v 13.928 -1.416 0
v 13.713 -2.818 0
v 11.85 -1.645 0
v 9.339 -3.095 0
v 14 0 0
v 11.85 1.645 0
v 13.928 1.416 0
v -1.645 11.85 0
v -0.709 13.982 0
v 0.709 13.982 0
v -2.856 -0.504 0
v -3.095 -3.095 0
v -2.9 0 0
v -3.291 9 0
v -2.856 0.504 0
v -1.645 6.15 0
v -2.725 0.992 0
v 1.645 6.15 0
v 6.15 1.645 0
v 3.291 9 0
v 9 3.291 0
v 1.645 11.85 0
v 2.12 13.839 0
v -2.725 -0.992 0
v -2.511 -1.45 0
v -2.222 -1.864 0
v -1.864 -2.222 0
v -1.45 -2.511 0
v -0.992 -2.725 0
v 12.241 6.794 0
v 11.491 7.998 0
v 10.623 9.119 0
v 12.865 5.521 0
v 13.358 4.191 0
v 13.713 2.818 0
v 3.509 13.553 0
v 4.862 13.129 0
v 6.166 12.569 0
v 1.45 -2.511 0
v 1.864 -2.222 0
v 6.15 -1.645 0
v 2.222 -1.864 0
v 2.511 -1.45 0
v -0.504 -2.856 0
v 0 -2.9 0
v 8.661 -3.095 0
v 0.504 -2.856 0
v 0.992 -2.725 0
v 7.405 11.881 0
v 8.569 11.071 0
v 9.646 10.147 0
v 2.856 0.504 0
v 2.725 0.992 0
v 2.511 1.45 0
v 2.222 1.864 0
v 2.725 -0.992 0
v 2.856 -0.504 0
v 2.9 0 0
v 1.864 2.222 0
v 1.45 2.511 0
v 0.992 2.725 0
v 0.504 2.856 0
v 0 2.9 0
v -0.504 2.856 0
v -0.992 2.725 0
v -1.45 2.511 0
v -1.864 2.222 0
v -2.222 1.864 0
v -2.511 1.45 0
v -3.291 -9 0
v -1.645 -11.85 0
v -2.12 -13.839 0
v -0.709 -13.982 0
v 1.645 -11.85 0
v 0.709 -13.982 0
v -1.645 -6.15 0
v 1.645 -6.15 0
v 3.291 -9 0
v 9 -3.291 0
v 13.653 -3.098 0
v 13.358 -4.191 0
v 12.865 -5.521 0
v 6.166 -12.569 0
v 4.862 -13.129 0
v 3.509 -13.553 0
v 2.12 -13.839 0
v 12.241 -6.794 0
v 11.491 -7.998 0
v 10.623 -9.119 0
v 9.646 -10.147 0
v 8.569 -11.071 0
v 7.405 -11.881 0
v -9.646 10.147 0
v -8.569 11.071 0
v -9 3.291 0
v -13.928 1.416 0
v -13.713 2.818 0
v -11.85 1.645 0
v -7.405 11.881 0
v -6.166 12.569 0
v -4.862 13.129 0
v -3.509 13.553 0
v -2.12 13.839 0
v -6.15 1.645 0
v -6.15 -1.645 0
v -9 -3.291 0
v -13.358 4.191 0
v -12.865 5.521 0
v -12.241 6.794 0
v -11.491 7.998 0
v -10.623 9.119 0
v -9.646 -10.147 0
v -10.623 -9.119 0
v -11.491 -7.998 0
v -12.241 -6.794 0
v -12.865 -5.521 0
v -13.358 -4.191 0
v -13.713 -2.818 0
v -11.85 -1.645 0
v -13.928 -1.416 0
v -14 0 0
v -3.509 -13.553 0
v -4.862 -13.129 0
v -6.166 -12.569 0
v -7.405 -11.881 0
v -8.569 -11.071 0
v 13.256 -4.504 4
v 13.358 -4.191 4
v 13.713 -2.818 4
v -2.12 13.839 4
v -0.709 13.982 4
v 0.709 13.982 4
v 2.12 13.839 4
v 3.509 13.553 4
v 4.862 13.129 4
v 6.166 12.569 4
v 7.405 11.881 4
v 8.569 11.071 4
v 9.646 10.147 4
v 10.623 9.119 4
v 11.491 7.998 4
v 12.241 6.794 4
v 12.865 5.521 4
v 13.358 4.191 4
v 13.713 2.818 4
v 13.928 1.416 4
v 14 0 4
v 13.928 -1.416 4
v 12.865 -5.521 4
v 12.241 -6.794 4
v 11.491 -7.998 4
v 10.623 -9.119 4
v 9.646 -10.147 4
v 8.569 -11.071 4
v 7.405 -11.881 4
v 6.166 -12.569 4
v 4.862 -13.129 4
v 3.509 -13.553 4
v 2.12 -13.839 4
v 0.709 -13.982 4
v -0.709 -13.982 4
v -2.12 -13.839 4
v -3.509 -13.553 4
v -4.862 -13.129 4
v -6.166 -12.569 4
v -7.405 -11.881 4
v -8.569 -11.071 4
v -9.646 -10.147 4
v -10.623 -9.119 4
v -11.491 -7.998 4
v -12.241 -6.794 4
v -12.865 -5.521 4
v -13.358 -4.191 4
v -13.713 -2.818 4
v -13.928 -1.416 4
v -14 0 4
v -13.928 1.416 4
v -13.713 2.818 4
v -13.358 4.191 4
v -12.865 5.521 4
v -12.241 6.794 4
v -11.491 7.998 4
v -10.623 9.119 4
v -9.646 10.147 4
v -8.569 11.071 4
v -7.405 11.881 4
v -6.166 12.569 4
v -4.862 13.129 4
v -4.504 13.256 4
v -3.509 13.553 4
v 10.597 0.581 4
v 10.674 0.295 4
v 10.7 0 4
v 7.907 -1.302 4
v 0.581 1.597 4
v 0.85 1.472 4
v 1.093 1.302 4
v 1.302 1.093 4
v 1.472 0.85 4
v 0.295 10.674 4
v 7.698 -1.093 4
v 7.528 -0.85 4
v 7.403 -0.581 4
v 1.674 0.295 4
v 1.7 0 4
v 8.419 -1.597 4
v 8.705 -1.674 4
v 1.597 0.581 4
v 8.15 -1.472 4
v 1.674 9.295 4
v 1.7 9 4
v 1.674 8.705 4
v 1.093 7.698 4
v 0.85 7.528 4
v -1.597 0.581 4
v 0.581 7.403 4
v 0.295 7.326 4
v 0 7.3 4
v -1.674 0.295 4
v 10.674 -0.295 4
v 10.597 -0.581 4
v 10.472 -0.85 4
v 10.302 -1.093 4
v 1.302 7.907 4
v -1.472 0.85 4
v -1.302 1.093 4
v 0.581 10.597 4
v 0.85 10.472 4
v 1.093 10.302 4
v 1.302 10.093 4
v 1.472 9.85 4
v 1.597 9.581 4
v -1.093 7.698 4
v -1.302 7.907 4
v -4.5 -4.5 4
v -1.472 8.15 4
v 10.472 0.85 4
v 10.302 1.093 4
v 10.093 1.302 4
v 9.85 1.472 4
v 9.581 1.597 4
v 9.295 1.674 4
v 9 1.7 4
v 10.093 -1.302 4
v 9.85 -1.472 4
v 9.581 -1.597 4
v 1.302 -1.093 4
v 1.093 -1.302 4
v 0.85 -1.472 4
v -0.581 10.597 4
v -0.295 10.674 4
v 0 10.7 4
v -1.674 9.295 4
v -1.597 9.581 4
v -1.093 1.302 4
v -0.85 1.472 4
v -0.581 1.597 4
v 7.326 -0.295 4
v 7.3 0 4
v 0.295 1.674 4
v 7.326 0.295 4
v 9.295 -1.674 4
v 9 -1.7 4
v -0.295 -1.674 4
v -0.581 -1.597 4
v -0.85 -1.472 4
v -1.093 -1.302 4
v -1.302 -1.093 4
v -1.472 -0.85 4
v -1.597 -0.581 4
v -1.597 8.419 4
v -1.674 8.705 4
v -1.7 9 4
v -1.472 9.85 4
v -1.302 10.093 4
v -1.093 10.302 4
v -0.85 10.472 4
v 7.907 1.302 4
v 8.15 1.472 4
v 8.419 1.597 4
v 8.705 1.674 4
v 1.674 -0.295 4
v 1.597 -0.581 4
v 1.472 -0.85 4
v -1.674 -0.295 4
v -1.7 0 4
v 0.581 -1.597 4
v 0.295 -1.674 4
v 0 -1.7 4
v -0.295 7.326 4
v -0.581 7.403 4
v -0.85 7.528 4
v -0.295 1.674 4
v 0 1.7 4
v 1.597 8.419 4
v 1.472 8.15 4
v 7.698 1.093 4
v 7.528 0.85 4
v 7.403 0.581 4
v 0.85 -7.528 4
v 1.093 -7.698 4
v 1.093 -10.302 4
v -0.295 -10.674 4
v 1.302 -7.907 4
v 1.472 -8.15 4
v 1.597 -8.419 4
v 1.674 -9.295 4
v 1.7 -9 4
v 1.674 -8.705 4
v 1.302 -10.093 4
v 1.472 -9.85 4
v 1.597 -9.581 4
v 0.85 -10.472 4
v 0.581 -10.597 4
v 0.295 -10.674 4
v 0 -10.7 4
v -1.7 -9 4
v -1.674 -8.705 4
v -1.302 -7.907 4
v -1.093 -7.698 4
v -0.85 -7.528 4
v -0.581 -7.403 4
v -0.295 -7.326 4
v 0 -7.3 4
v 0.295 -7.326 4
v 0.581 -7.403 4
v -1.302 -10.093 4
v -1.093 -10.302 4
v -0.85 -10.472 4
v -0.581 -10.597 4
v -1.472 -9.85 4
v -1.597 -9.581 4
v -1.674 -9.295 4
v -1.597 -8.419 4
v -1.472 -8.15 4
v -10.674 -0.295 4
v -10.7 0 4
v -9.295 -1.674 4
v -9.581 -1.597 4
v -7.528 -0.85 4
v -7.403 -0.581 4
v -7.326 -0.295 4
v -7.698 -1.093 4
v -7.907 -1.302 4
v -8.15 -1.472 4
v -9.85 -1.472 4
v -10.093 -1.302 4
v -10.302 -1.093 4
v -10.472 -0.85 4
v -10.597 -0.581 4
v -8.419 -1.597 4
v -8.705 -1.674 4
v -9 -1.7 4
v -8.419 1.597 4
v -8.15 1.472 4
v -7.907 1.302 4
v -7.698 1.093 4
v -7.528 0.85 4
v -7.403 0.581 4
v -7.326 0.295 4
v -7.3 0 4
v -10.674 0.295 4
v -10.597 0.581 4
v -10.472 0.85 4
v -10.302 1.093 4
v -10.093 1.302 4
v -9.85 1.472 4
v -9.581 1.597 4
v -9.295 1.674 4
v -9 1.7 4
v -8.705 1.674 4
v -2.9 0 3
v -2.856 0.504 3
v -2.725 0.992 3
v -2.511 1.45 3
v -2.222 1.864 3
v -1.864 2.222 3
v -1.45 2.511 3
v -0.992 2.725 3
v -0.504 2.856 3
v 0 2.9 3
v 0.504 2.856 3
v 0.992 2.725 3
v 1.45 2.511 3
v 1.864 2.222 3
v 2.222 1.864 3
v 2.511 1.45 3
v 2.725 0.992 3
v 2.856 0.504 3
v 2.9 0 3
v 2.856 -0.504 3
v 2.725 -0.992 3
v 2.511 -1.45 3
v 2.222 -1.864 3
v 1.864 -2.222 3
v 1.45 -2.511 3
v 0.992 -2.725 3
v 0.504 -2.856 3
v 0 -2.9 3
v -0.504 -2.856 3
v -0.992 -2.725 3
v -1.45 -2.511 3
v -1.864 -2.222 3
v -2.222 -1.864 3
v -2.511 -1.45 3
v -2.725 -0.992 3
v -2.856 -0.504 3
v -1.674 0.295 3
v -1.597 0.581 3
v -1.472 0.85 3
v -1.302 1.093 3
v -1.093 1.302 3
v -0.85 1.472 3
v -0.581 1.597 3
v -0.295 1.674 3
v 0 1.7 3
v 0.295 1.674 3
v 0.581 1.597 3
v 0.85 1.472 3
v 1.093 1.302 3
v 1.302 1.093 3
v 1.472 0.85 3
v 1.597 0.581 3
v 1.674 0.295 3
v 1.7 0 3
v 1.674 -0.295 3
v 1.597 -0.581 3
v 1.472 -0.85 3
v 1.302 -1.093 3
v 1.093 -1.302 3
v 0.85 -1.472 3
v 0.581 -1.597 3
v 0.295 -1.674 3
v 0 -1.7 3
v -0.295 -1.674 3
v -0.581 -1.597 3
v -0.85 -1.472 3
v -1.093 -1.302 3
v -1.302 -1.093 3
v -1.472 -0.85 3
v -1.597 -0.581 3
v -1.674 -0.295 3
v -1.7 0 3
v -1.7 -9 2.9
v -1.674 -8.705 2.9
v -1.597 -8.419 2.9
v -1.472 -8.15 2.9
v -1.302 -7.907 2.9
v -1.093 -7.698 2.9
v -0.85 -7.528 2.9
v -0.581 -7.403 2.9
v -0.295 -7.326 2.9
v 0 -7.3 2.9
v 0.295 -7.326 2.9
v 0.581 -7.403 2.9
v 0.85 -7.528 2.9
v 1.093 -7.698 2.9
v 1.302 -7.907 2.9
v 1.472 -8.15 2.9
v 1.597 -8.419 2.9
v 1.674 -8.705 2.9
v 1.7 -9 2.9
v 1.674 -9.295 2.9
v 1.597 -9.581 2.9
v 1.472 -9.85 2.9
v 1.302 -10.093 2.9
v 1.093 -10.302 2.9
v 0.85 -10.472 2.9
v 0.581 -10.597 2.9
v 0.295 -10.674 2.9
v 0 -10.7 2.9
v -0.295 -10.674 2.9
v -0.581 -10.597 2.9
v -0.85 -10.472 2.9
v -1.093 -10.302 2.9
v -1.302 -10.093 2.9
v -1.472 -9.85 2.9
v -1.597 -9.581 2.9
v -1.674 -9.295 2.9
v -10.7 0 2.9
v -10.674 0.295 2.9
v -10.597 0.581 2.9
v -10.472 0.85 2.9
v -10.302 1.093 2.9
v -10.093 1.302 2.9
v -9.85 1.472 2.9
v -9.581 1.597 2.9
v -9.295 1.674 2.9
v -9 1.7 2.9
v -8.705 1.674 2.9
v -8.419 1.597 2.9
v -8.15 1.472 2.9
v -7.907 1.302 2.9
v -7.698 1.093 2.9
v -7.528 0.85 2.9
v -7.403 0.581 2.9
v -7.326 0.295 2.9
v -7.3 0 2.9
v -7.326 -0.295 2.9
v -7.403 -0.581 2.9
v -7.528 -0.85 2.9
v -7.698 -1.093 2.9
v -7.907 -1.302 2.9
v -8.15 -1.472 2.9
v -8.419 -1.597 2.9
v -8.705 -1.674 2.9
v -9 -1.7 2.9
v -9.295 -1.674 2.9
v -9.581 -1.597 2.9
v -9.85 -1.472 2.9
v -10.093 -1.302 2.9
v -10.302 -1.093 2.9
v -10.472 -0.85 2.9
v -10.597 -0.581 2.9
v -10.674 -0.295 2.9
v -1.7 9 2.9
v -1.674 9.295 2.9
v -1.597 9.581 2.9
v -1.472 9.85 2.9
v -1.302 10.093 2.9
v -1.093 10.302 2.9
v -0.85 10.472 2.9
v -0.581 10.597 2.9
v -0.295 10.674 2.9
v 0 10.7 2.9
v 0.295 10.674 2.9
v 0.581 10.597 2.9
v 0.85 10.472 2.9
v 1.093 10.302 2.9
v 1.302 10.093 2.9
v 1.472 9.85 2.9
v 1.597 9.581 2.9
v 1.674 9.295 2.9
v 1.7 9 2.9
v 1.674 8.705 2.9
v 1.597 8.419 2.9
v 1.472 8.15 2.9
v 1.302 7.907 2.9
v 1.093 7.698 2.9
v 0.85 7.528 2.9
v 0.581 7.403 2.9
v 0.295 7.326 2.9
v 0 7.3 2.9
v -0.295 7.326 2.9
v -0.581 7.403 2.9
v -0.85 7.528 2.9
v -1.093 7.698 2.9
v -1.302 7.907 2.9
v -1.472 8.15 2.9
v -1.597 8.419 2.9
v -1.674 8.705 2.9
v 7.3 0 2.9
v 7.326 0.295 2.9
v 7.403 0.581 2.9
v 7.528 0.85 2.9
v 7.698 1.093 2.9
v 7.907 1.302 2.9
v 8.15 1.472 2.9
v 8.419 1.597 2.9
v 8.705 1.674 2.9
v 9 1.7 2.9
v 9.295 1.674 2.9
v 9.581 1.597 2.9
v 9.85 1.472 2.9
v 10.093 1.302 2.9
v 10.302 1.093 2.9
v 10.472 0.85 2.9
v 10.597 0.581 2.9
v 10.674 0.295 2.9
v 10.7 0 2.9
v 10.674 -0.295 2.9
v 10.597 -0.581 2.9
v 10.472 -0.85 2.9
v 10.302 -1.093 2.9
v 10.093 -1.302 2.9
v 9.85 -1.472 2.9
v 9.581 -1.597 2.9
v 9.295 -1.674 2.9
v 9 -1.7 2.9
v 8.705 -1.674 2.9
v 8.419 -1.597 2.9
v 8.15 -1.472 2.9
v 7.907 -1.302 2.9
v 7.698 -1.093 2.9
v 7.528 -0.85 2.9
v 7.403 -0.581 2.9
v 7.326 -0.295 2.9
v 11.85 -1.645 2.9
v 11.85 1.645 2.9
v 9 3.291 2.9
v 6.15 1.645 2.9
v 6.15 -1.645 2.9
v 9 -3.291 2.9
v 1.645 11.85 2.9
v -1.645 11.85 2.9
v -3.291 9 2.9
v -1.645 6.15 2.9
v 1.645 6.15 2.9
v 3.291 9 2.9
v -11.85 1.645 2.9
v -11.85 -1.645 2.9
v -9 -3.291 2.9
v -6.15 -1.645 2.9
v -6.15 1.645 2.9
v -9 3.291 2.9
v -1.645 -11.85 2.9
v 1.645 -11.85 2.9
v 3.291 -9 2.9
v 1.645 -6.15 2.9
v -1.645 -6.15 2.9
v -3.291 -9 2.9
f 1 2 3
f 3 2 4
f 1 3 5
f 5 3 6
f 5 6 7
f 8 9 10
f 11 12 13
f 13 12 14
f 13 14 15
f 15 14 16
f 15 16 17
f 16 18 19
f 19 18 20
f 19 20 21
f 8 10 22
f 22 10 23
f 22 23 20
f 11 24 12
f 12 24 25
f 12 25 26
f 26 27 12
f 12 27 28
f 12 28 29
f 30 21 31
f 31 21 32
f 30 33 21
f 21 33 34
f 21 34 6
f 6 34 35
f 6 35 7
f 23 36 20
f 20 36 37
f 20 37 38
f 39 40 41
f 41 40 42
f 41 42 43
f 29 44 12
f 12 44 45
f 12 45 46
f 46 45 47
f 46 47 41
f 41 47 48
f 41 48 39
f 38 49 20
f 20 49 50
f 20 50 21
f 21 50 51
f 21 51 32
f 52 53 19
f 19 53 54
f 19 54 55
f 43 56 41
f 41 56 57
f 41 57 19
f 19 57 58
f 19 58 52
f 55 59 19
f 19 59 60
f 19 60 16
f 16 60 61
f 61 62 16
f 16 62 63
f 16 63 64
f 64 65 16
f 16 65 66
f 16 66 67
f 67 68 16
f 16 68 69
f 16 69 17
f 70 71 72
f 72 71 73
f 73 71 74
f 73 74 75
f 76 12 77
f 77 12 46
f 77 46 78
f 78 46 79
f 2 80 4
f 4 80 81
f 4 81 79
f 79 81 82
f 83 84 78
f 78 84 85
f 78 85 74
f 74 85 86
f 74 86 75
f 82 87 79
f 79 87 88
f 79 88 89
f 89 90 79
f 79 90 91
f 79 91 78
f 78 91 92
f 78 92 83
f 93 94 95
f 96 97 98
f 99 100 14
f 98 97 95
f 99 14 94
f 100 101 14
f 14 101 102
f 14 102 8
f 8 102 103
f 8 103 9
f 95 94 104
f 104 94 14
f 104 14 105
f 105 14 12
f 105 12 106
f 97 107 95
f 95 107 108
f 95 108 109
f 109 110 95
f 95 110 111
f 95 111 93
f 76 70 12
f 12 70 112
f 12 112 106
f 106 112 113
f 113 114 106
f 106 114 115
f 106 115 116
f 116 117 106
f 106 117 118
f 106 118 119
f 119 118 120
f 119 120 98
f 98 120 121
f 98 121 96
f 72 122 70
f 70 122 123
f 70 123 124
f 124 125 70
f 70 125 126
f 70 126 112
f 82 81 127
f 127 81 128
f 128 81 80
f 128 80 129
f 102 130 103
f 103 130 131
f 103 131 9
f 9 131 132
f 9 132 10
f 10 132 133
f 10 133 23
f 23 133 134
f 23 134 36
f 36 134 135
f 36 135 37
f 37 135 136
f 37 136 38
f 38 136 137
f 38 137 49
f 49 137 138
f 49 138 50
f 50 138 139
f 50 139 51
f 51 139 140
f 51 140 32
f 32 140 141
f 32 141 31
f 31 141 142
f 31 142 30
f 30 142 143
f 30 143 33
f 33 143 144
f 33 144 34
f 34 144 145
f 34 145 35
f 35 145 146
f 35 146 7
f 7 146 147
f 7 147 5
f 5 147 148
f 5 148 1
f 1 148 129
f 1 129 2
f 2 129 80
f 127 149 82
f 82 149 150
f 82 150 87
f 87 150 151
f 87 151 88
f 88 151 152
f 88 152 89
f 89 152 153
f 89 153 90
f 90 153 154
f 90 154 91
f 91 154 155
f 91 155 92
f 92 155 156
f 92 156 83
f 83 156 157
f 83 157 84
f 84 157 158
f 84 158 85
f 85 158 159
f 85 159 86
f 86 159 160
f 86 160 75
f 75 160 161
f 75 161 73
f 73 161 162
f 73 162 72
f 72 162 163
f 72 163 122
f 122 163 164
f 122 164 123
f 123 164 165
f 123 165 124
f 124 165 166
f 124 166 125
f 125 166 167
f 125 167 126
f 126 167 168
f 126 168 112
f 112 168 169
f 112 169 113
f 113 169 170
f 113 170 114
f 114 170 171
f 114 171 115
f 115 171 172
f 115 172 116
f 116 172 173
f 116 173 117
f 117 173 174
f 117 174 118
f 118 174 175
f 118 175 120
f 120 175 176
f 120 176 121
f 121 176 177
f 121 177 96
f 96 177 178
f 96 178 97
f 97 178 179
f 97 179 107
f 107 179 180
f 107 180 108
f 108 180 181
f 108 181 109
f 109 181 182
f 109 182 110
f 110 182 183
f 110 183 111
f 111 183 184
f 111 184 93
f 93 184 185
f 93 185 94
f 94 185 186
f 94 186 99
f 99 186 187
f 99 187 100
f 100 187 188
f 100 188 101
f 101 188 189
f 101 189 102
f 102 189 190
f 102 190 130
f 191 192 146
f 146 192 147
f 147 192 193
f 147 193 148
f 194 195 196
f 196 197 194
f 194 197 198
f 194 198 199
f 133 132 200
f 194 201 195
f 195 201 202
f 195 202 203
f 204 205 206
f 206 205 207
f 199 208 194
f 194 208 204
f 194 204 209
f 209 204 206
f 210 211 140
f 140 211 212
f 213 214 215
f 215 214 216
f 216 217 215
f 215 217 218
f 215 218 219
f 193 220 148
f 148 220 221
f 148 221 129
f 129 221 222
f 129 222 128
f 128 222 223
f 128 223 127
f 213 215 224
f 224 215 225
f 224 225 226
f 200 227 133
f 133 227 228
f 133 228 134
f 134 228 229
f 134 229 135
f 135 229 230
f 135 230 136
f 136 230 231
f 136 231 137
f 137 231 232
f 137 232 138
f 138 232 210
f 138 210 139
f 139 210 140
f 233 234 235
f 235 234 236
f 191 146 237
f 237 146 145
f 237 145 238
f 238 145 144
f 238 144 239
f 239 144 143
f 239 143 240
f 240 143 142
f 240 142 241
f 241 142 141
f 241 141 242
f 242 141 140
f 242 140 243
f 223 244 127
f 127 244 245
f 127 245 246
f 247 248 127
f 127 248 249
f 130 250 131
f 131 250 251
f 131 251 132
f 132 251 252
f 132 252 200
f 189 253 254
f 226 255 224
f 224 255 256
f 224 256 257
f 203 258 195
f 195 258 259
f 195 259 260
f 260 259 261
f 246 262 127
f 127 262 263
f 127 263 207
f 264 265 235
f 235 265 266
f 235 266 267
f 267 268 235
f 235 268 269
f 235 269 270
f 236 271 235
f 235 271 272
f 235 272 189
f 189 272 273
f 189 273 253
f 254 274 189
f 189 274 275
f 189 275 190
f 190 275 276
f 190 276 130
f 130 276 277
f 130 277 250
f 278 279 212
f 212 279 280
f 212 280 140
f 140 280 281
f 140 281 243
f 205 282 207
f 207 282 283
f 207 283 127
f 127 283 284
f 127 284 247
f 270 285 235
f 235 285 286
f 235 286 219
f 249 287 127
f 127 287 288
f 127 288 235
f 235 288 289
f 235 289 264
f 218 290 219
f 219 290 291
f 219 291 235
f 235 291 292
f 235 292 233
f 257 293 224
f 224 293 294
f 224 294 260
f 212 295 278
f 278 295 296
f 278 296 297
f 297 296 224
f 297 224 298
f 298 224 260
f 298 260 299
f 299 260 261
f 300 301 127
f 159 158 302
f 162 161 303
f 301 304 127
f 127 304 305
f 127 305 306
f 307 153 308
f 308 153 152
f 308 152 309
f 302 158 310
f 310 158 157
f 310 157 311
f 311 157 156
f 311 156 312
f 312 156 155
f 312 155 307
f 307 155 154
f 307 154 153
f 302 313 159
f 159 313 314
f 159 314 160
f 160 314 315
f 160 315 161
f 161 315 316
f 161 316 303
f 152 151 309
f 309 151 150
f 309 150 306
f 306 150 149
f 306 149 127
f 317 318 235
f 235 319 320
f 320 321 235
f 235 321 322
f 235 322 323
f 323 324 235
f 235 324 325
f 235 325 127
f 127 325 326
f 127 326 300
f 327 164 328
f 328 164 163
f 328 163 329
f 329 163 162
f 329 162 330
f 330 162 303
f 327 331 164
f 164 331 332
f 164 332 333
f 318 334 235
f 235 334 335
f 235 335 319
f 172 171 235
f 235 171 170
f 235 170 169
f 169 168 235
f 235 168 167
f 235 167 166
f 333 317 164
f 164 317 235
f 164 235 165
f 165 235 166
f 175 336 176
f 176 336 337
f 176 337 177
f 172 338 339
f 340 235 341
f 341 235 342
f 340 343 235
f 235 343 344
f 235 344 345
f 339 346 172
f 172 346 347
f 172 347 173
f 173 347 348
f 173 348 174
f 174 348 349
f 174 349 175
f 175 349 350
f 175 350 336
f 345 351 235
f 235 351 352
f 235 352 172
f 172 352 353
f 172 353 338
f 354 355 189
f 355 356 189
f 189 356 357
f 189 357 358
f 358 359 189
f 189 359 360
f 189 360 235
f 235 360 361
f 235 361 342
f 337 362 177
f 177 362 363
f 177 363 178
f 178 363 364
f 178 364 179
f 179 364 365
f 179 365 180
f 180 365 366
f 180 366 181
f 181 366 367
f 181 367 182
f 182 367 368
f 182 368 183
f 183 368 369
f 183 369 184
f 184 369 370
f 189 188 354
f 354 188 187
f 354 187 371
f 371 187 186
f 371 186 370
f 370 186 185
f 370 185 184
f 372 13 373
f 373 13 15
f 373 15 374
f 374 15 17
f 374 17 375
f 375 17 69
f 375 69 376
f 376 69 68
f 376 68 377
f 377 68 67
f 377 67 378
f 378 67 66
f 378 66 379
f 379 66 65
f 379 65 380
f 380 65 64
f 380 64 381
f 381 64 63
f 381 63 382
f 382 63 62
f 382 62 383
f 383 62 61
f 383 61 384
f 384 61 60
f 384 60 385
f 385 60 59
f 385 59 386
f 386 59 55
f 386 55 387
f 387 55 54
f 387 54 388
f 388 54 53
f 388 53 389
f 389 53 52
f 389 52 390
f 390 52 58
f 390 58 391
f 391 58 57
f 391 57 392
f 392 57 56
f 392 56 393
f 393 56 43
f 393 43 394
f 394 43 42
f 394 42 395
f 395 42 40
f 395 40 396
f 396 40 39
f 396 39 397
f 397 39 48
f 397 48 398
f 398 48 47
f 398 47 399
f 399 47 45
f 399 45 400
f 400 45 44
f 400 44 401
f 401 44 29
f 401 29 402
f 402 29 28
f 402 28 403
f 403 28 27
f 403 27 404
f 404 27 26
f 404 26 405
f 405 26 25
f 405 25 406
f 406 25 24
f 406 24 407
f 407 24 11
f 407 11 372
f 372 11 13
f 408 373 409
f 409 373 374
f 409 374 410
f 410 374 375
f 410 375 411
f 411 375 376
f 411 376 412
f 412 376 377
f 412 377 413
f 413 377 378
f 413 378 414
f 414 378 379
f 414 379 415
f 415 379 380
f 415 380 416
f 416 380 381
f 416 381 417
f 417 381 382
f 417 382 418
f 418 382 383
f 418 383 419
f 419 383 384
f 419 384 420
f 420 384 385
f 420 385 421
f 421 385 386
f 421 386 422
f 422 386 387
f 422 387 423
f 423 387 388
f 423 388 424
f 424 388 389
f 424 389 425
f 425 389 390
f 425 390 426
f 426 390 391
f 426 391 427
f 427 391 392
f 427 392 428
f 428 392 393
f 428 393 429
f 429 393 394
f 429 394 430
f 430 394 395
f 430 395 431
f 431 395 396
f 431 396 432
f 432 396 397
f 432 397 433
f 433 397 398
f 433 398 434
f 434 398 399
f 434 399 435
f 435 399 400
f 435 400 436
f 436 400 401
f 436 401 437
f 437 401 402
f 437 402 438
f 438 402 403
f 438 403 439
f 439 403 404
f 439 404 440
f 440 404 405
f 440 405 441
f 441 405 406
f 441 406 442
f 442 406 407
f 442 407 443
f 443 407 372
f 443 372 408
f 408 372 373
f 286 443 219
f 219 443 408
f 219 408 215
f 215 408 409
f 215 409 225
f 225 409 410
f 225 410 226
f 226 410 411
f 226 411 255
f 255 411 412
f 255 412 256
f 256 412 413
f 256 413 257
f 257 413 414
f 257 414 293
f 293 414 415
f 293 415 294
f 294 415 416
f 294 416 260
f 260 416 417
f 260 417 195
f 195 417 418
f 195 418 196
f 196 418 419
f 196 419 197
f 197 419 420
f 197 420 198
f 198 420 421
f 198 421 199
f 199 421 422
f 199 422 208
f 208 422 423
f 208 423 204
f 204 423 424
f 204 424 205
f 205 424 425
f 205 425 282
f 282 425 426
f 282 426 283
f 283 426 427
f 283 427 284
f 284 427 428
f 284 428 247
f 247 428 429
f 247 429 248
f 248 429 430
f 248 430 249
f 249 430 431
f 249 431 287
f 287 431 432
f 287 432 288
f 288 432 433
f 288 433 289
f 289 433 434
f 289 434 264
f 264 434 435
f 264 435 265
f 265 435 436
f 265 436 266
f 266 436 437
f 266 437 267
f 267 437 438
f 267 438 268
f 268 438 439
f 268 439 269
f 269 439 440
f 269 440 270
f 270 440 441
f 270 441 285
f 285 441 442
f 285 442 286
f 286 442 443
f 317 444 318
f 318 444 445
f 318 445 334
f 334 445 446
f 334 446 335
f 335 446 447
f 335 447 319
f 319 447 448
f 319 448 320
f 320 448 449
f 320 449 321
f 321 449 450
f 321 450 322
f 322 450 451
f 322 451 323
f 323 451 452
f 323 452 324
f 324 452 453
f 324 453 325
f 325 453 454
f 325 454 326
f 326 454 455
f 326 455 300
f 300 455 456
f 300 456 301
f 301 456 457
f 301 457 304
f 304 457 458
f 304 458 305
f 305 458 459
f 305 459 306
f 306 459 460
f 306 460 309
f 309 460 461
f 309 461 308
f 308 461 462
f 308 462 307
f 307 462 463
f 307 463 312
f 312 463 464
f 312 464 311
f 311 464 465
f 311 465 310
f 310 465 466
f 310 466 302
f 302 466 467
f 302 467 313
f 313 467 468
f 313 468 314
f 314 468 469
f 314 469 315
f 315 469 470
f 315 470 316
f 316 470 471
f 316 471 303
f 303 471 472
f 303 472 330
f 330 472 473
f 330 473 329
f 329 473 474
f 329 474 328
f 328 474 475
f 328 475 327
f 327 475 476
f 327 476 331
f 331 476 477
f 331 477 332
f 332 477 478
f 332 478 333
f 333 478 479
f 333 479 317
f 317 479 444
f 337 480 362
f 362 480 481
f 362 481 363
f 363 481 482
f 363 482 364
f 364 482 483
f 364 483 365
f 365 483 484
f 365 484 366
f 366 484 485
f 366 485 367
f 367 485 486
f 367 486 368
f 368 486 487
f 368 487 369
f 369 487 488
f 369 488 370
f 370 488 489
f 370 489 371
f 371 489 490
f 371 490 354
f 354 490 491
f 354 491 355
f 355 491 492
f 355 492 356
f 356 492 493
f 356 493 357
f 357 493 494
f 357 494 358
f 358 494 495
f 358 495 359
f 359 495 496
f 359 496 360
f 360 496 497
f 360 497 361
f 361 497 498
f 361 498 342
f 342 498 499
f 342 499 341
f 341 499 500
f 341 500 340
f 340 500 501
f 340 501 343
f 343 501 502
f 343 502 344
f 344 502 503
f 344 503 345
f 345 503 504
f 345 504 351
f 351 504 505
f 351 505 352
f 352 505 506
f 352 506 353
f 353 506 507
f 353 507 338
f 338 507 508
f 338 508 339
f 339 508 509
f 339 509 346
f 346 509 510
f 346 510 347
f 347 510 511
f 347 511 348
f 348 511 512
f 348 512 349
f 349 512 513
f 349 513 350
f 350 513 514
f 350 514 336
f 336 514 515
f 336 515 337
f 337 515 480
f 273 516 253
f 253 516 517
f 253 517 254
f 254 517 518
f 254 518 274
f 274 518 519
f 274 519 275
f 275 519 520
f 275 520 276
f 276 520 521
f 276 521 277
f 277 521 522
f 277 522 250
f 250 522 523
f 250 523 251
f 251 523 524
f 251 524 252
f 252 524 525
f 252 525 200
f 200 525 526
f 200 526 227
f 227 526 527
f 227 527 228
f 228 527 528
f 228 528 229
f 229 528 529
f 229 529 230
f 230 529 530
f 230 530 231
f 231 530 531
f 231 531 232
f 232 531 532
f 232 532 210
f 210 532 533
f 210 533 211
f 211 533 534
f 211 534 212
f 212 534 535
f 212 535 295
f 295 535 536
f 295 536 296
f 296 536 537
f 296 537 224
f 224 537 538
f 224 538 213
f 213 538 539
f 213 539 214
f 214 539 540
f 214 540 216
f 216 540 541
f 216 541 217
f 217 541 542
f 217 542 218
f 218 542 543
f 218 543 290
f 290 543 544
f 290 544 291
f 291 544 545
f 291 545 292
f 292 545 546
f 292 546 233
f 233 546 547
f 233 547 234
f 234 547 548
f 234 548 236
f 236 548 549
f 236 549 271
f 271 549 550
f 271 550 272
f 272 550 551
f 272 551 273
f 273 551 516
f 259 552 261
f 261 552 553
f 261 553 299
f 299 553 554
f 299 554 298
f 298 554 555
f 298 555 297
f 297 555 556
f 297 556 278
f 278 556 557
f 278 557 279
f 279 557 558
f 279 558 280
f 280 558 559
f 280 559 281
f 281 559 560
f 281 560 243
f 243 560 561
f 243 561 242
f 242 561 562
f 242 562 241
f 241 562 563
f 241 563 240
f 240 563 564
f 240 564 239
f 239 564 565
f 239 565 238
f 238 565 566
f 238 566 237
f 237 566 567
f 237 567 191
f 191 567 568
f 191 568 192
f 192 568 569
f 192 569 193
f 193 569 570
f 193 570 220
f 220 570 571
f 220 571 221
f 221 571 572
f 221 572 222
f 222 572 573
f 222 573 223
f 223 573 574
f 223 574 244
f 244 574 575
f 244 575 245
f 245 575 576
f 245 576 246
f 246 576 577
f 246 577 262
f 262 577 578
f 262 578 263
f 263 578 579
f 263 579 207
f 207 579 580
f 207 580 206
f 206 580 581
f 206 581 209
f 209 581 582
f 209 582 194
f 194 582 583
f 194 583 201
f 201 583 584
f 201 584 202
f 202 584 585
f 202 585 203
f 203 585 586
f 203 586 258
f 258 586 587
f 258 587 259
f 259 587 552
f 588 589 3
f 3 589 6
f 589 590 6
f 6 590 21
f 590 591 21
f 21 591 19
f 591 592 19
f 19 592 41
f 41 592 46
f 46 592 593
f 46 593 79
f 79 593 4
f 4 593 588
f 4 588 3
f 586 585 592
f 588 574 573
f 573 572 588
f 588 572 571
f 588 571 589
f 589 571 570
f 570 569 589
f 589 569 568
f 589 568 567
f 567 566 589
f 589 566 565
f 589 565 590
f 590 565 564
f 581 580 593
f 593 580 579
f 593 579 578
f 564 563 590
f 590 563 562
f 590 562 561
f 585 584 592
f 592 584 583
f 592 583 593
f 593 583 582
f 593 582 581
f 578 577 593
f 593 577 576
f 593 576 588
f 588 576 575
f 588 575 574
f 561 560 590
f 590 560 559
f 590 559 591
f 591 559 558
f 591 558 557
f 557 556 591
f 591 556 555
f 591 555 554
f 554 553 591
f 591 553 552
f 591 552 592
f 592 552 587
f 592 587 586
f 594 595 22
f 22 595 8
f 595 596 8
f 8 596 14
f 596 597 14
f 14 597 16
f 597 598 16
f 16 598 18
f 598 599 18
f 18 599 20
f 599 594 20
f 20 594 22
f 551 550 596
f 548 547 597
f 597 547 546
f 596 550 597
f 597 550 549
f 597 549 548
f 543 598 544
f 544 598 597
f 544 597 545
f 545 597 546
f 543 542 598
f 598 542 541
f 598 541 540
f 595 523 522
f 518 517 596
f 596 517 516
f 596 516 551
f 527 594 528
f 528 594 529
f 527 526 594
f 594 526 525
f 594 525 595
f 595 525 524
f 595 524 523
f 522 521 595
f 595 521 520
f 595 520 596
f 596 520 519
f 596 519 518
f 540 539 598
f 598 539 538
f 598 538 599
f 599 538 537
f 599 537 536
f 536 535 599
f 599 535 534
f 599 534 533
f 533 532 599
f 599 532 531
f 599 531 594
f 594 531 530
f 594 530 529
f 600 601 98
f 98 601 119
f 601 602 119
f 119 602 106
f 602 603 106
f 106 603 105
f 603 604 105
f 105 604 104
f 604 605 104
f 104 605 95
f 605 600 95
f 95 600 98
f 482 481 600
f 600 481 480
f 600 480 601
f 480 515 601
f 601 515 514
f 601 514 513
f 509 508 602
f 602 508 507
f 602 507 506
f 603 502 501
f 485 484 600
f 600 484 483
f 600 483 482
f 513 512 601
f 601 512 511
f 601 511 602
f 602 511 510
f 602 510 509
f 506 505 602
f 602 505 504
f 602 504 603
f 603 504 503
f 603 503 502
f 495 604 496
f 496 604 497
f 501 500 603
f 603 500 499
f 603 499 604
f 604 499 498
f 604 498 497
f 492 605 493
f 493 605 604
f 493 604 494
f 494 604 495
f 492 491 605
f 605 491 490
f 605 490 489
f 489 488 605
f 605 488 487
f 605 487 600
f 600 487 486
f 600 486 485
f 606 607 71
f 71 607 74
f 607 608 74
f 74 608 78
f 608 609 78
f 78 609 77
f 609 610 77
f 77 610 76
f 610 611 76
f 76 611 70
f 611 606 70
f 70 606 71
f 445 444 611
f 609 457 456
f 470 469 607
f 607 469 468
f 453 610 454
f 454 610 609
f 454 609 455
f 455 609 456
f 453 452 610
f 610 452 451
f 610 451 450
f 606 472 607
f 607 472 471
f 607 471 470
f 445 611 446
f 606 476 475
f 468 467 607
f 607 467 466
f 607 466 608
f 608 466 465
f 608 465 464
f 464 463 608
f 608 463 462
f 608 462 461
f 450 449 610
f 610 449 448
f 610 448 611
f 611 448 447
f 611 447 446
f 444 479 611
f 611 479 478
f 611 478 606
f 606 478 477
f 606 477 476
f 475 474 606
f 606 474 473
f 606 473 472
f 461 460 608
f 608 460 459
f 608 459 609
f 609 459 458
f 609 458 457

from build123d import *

# Parameters (mm, degrees)
HUB_DISC_OD28_THICKNESS4_PROFILE_R            = 14
HUB_DISC_OD28_THICKNESS4_DEPTH                = 4
MG996R_SPLINE_PRESS_SOCKET_D5P80_DEP_2_R      = 2.9
MG996R_SPLINE_PRESS_SOCKET_D5P80_DEPTH3_DEPTH = 3
M3_CENTRE_SCREW_CLEARANCE_THROUGH_FLOOR_START = -50
M3_CENTRE_SCREW_CLEARANCE_THROUGH_FL_2_R      = 1.7
M3_CENTRE_SCREW_CLEARANCE_THROUGH_FLOOR_DEPTH = 71.199009877
LINK_M3_CLEARANCE_PCD18_START                 = -50
LINK_M3_CLEARANCE_PCD18_PROFILE_R             = 1.7
LINK_M3_CLEARANCE_PCD18_DEPTH                 = 71.199009877
CAPTURED_M3_NUT_POCKETS_DEPTH2P9_DEPTH        = 2.9


with BuildPart() as part:
    # Hub_disc_OD28_thickness4_profile → Hub_disc_OD28_thickness4 (new body)
    with BuildSketch(Plane.XY):
        Circle(HUB_DISC_OD28_THICKNESS4_PROFILE_R)
    extrude(amount=HUB_DISC_OD28_THICKNESS4_DEPTH)

    # MG996R_spline_press_socket_D5p80_dep 2 → MG996R_spline_press_socket_D5p80_depth3 (cut)
    with BuildSketch(Plane.XY):
        Circle(MG996R_SPLINE_PRESS_SOCKET_D5P80_DEP_2_R)
    extrude(amount=MG996R_SPLINE_PRESS_SOCKET_D5P80_DEPTH3_DEPTH, mode=Mode.SUBTRACT)

    # M3_centre_screw_clearance_through_fl 2 → M3_centre_screw_clearance_through_floor (cut, through all)
    with BuildSketch(Plane.XY.offset(M3_CENTRE_SCREW_CLEARANCE_THROUGH_FLOOR_START)):
        Circle(M3_CENTRE_SCREW_CLEARANCE_THROUGH_FL_2_R)
    extrude(amount=M3_CENTRE_SCREW_CLEARANCE_THROUGH_FLOOR_DEPTH, mode=Mode.SUBTRACT)

    # Link_M3_clearance_PCD18_profile → Link_M3_clearance_PCD18 (cut, through all)
    with BuildSketch(Plane.XY.offset(LINK_M3_CLEARANCE_PCD18_START)):
        with Locations((9, 0)):
            Circle(LINK_M3_CLEARANCE_PCD18_PROFILE_R)
        with Locations((0, 9)):
            Circle(LINK_M3_CLEARANCE_PCD18_PROFILE_R)
        with Locations((-9, 0)):
            Circle(LINK_M3_CLEARANCE_PCD18_PROFILE_R)
        with Locations((0, -9)):
            Circle(LINK_M3_CLEARANCE_PCD18_PROFILE_R)
    extrude(amount=LINK_M3_CLEARANCE_PCD18_DEPTH, mode=Mode.SUBTRACT)

    # Captured_M3_nut_pockets_AF5p7_profile → Captured_M3_nut_pockets_depth2p9 (cut)
    with BuildSketch(Plane.XY):
        Polygon((11.85, 1.645448267), (9, 3.290896534), (6.15, 1.645448267), (6.15, -1.645448267), (9, -3.290896534), (11.85, -1.645448267), align=None)
        Polygon((-1.645448267, 11.85), (-3.290896534, 9), (-1.645448267, 6.15), (1.645448267, 6.15), (3.290896534, 9), (1.645448267, 11.85), align=None)
        Polygon((-11.85, -1.645448267), (-9, -3.290896534), (-6.15, -1.645448267), (-6.15, 1.645448267), (-9, 3.290896534), (-11.85, 1.645448267), align=None)
        Polygon((1.645448267, -11.85), (3.290896534, -9), (1.645448267, -6.15), (-1.645448267, -6.15), (-3.290896534, -9), (-1.645448267, -11.85), align=None)
    extrude(amount=CAPTURED_M3_NUT_POCKETS_DEPTH2P9_DEPTH, mode=Mode.SUBTRACT)


solid = part.part
